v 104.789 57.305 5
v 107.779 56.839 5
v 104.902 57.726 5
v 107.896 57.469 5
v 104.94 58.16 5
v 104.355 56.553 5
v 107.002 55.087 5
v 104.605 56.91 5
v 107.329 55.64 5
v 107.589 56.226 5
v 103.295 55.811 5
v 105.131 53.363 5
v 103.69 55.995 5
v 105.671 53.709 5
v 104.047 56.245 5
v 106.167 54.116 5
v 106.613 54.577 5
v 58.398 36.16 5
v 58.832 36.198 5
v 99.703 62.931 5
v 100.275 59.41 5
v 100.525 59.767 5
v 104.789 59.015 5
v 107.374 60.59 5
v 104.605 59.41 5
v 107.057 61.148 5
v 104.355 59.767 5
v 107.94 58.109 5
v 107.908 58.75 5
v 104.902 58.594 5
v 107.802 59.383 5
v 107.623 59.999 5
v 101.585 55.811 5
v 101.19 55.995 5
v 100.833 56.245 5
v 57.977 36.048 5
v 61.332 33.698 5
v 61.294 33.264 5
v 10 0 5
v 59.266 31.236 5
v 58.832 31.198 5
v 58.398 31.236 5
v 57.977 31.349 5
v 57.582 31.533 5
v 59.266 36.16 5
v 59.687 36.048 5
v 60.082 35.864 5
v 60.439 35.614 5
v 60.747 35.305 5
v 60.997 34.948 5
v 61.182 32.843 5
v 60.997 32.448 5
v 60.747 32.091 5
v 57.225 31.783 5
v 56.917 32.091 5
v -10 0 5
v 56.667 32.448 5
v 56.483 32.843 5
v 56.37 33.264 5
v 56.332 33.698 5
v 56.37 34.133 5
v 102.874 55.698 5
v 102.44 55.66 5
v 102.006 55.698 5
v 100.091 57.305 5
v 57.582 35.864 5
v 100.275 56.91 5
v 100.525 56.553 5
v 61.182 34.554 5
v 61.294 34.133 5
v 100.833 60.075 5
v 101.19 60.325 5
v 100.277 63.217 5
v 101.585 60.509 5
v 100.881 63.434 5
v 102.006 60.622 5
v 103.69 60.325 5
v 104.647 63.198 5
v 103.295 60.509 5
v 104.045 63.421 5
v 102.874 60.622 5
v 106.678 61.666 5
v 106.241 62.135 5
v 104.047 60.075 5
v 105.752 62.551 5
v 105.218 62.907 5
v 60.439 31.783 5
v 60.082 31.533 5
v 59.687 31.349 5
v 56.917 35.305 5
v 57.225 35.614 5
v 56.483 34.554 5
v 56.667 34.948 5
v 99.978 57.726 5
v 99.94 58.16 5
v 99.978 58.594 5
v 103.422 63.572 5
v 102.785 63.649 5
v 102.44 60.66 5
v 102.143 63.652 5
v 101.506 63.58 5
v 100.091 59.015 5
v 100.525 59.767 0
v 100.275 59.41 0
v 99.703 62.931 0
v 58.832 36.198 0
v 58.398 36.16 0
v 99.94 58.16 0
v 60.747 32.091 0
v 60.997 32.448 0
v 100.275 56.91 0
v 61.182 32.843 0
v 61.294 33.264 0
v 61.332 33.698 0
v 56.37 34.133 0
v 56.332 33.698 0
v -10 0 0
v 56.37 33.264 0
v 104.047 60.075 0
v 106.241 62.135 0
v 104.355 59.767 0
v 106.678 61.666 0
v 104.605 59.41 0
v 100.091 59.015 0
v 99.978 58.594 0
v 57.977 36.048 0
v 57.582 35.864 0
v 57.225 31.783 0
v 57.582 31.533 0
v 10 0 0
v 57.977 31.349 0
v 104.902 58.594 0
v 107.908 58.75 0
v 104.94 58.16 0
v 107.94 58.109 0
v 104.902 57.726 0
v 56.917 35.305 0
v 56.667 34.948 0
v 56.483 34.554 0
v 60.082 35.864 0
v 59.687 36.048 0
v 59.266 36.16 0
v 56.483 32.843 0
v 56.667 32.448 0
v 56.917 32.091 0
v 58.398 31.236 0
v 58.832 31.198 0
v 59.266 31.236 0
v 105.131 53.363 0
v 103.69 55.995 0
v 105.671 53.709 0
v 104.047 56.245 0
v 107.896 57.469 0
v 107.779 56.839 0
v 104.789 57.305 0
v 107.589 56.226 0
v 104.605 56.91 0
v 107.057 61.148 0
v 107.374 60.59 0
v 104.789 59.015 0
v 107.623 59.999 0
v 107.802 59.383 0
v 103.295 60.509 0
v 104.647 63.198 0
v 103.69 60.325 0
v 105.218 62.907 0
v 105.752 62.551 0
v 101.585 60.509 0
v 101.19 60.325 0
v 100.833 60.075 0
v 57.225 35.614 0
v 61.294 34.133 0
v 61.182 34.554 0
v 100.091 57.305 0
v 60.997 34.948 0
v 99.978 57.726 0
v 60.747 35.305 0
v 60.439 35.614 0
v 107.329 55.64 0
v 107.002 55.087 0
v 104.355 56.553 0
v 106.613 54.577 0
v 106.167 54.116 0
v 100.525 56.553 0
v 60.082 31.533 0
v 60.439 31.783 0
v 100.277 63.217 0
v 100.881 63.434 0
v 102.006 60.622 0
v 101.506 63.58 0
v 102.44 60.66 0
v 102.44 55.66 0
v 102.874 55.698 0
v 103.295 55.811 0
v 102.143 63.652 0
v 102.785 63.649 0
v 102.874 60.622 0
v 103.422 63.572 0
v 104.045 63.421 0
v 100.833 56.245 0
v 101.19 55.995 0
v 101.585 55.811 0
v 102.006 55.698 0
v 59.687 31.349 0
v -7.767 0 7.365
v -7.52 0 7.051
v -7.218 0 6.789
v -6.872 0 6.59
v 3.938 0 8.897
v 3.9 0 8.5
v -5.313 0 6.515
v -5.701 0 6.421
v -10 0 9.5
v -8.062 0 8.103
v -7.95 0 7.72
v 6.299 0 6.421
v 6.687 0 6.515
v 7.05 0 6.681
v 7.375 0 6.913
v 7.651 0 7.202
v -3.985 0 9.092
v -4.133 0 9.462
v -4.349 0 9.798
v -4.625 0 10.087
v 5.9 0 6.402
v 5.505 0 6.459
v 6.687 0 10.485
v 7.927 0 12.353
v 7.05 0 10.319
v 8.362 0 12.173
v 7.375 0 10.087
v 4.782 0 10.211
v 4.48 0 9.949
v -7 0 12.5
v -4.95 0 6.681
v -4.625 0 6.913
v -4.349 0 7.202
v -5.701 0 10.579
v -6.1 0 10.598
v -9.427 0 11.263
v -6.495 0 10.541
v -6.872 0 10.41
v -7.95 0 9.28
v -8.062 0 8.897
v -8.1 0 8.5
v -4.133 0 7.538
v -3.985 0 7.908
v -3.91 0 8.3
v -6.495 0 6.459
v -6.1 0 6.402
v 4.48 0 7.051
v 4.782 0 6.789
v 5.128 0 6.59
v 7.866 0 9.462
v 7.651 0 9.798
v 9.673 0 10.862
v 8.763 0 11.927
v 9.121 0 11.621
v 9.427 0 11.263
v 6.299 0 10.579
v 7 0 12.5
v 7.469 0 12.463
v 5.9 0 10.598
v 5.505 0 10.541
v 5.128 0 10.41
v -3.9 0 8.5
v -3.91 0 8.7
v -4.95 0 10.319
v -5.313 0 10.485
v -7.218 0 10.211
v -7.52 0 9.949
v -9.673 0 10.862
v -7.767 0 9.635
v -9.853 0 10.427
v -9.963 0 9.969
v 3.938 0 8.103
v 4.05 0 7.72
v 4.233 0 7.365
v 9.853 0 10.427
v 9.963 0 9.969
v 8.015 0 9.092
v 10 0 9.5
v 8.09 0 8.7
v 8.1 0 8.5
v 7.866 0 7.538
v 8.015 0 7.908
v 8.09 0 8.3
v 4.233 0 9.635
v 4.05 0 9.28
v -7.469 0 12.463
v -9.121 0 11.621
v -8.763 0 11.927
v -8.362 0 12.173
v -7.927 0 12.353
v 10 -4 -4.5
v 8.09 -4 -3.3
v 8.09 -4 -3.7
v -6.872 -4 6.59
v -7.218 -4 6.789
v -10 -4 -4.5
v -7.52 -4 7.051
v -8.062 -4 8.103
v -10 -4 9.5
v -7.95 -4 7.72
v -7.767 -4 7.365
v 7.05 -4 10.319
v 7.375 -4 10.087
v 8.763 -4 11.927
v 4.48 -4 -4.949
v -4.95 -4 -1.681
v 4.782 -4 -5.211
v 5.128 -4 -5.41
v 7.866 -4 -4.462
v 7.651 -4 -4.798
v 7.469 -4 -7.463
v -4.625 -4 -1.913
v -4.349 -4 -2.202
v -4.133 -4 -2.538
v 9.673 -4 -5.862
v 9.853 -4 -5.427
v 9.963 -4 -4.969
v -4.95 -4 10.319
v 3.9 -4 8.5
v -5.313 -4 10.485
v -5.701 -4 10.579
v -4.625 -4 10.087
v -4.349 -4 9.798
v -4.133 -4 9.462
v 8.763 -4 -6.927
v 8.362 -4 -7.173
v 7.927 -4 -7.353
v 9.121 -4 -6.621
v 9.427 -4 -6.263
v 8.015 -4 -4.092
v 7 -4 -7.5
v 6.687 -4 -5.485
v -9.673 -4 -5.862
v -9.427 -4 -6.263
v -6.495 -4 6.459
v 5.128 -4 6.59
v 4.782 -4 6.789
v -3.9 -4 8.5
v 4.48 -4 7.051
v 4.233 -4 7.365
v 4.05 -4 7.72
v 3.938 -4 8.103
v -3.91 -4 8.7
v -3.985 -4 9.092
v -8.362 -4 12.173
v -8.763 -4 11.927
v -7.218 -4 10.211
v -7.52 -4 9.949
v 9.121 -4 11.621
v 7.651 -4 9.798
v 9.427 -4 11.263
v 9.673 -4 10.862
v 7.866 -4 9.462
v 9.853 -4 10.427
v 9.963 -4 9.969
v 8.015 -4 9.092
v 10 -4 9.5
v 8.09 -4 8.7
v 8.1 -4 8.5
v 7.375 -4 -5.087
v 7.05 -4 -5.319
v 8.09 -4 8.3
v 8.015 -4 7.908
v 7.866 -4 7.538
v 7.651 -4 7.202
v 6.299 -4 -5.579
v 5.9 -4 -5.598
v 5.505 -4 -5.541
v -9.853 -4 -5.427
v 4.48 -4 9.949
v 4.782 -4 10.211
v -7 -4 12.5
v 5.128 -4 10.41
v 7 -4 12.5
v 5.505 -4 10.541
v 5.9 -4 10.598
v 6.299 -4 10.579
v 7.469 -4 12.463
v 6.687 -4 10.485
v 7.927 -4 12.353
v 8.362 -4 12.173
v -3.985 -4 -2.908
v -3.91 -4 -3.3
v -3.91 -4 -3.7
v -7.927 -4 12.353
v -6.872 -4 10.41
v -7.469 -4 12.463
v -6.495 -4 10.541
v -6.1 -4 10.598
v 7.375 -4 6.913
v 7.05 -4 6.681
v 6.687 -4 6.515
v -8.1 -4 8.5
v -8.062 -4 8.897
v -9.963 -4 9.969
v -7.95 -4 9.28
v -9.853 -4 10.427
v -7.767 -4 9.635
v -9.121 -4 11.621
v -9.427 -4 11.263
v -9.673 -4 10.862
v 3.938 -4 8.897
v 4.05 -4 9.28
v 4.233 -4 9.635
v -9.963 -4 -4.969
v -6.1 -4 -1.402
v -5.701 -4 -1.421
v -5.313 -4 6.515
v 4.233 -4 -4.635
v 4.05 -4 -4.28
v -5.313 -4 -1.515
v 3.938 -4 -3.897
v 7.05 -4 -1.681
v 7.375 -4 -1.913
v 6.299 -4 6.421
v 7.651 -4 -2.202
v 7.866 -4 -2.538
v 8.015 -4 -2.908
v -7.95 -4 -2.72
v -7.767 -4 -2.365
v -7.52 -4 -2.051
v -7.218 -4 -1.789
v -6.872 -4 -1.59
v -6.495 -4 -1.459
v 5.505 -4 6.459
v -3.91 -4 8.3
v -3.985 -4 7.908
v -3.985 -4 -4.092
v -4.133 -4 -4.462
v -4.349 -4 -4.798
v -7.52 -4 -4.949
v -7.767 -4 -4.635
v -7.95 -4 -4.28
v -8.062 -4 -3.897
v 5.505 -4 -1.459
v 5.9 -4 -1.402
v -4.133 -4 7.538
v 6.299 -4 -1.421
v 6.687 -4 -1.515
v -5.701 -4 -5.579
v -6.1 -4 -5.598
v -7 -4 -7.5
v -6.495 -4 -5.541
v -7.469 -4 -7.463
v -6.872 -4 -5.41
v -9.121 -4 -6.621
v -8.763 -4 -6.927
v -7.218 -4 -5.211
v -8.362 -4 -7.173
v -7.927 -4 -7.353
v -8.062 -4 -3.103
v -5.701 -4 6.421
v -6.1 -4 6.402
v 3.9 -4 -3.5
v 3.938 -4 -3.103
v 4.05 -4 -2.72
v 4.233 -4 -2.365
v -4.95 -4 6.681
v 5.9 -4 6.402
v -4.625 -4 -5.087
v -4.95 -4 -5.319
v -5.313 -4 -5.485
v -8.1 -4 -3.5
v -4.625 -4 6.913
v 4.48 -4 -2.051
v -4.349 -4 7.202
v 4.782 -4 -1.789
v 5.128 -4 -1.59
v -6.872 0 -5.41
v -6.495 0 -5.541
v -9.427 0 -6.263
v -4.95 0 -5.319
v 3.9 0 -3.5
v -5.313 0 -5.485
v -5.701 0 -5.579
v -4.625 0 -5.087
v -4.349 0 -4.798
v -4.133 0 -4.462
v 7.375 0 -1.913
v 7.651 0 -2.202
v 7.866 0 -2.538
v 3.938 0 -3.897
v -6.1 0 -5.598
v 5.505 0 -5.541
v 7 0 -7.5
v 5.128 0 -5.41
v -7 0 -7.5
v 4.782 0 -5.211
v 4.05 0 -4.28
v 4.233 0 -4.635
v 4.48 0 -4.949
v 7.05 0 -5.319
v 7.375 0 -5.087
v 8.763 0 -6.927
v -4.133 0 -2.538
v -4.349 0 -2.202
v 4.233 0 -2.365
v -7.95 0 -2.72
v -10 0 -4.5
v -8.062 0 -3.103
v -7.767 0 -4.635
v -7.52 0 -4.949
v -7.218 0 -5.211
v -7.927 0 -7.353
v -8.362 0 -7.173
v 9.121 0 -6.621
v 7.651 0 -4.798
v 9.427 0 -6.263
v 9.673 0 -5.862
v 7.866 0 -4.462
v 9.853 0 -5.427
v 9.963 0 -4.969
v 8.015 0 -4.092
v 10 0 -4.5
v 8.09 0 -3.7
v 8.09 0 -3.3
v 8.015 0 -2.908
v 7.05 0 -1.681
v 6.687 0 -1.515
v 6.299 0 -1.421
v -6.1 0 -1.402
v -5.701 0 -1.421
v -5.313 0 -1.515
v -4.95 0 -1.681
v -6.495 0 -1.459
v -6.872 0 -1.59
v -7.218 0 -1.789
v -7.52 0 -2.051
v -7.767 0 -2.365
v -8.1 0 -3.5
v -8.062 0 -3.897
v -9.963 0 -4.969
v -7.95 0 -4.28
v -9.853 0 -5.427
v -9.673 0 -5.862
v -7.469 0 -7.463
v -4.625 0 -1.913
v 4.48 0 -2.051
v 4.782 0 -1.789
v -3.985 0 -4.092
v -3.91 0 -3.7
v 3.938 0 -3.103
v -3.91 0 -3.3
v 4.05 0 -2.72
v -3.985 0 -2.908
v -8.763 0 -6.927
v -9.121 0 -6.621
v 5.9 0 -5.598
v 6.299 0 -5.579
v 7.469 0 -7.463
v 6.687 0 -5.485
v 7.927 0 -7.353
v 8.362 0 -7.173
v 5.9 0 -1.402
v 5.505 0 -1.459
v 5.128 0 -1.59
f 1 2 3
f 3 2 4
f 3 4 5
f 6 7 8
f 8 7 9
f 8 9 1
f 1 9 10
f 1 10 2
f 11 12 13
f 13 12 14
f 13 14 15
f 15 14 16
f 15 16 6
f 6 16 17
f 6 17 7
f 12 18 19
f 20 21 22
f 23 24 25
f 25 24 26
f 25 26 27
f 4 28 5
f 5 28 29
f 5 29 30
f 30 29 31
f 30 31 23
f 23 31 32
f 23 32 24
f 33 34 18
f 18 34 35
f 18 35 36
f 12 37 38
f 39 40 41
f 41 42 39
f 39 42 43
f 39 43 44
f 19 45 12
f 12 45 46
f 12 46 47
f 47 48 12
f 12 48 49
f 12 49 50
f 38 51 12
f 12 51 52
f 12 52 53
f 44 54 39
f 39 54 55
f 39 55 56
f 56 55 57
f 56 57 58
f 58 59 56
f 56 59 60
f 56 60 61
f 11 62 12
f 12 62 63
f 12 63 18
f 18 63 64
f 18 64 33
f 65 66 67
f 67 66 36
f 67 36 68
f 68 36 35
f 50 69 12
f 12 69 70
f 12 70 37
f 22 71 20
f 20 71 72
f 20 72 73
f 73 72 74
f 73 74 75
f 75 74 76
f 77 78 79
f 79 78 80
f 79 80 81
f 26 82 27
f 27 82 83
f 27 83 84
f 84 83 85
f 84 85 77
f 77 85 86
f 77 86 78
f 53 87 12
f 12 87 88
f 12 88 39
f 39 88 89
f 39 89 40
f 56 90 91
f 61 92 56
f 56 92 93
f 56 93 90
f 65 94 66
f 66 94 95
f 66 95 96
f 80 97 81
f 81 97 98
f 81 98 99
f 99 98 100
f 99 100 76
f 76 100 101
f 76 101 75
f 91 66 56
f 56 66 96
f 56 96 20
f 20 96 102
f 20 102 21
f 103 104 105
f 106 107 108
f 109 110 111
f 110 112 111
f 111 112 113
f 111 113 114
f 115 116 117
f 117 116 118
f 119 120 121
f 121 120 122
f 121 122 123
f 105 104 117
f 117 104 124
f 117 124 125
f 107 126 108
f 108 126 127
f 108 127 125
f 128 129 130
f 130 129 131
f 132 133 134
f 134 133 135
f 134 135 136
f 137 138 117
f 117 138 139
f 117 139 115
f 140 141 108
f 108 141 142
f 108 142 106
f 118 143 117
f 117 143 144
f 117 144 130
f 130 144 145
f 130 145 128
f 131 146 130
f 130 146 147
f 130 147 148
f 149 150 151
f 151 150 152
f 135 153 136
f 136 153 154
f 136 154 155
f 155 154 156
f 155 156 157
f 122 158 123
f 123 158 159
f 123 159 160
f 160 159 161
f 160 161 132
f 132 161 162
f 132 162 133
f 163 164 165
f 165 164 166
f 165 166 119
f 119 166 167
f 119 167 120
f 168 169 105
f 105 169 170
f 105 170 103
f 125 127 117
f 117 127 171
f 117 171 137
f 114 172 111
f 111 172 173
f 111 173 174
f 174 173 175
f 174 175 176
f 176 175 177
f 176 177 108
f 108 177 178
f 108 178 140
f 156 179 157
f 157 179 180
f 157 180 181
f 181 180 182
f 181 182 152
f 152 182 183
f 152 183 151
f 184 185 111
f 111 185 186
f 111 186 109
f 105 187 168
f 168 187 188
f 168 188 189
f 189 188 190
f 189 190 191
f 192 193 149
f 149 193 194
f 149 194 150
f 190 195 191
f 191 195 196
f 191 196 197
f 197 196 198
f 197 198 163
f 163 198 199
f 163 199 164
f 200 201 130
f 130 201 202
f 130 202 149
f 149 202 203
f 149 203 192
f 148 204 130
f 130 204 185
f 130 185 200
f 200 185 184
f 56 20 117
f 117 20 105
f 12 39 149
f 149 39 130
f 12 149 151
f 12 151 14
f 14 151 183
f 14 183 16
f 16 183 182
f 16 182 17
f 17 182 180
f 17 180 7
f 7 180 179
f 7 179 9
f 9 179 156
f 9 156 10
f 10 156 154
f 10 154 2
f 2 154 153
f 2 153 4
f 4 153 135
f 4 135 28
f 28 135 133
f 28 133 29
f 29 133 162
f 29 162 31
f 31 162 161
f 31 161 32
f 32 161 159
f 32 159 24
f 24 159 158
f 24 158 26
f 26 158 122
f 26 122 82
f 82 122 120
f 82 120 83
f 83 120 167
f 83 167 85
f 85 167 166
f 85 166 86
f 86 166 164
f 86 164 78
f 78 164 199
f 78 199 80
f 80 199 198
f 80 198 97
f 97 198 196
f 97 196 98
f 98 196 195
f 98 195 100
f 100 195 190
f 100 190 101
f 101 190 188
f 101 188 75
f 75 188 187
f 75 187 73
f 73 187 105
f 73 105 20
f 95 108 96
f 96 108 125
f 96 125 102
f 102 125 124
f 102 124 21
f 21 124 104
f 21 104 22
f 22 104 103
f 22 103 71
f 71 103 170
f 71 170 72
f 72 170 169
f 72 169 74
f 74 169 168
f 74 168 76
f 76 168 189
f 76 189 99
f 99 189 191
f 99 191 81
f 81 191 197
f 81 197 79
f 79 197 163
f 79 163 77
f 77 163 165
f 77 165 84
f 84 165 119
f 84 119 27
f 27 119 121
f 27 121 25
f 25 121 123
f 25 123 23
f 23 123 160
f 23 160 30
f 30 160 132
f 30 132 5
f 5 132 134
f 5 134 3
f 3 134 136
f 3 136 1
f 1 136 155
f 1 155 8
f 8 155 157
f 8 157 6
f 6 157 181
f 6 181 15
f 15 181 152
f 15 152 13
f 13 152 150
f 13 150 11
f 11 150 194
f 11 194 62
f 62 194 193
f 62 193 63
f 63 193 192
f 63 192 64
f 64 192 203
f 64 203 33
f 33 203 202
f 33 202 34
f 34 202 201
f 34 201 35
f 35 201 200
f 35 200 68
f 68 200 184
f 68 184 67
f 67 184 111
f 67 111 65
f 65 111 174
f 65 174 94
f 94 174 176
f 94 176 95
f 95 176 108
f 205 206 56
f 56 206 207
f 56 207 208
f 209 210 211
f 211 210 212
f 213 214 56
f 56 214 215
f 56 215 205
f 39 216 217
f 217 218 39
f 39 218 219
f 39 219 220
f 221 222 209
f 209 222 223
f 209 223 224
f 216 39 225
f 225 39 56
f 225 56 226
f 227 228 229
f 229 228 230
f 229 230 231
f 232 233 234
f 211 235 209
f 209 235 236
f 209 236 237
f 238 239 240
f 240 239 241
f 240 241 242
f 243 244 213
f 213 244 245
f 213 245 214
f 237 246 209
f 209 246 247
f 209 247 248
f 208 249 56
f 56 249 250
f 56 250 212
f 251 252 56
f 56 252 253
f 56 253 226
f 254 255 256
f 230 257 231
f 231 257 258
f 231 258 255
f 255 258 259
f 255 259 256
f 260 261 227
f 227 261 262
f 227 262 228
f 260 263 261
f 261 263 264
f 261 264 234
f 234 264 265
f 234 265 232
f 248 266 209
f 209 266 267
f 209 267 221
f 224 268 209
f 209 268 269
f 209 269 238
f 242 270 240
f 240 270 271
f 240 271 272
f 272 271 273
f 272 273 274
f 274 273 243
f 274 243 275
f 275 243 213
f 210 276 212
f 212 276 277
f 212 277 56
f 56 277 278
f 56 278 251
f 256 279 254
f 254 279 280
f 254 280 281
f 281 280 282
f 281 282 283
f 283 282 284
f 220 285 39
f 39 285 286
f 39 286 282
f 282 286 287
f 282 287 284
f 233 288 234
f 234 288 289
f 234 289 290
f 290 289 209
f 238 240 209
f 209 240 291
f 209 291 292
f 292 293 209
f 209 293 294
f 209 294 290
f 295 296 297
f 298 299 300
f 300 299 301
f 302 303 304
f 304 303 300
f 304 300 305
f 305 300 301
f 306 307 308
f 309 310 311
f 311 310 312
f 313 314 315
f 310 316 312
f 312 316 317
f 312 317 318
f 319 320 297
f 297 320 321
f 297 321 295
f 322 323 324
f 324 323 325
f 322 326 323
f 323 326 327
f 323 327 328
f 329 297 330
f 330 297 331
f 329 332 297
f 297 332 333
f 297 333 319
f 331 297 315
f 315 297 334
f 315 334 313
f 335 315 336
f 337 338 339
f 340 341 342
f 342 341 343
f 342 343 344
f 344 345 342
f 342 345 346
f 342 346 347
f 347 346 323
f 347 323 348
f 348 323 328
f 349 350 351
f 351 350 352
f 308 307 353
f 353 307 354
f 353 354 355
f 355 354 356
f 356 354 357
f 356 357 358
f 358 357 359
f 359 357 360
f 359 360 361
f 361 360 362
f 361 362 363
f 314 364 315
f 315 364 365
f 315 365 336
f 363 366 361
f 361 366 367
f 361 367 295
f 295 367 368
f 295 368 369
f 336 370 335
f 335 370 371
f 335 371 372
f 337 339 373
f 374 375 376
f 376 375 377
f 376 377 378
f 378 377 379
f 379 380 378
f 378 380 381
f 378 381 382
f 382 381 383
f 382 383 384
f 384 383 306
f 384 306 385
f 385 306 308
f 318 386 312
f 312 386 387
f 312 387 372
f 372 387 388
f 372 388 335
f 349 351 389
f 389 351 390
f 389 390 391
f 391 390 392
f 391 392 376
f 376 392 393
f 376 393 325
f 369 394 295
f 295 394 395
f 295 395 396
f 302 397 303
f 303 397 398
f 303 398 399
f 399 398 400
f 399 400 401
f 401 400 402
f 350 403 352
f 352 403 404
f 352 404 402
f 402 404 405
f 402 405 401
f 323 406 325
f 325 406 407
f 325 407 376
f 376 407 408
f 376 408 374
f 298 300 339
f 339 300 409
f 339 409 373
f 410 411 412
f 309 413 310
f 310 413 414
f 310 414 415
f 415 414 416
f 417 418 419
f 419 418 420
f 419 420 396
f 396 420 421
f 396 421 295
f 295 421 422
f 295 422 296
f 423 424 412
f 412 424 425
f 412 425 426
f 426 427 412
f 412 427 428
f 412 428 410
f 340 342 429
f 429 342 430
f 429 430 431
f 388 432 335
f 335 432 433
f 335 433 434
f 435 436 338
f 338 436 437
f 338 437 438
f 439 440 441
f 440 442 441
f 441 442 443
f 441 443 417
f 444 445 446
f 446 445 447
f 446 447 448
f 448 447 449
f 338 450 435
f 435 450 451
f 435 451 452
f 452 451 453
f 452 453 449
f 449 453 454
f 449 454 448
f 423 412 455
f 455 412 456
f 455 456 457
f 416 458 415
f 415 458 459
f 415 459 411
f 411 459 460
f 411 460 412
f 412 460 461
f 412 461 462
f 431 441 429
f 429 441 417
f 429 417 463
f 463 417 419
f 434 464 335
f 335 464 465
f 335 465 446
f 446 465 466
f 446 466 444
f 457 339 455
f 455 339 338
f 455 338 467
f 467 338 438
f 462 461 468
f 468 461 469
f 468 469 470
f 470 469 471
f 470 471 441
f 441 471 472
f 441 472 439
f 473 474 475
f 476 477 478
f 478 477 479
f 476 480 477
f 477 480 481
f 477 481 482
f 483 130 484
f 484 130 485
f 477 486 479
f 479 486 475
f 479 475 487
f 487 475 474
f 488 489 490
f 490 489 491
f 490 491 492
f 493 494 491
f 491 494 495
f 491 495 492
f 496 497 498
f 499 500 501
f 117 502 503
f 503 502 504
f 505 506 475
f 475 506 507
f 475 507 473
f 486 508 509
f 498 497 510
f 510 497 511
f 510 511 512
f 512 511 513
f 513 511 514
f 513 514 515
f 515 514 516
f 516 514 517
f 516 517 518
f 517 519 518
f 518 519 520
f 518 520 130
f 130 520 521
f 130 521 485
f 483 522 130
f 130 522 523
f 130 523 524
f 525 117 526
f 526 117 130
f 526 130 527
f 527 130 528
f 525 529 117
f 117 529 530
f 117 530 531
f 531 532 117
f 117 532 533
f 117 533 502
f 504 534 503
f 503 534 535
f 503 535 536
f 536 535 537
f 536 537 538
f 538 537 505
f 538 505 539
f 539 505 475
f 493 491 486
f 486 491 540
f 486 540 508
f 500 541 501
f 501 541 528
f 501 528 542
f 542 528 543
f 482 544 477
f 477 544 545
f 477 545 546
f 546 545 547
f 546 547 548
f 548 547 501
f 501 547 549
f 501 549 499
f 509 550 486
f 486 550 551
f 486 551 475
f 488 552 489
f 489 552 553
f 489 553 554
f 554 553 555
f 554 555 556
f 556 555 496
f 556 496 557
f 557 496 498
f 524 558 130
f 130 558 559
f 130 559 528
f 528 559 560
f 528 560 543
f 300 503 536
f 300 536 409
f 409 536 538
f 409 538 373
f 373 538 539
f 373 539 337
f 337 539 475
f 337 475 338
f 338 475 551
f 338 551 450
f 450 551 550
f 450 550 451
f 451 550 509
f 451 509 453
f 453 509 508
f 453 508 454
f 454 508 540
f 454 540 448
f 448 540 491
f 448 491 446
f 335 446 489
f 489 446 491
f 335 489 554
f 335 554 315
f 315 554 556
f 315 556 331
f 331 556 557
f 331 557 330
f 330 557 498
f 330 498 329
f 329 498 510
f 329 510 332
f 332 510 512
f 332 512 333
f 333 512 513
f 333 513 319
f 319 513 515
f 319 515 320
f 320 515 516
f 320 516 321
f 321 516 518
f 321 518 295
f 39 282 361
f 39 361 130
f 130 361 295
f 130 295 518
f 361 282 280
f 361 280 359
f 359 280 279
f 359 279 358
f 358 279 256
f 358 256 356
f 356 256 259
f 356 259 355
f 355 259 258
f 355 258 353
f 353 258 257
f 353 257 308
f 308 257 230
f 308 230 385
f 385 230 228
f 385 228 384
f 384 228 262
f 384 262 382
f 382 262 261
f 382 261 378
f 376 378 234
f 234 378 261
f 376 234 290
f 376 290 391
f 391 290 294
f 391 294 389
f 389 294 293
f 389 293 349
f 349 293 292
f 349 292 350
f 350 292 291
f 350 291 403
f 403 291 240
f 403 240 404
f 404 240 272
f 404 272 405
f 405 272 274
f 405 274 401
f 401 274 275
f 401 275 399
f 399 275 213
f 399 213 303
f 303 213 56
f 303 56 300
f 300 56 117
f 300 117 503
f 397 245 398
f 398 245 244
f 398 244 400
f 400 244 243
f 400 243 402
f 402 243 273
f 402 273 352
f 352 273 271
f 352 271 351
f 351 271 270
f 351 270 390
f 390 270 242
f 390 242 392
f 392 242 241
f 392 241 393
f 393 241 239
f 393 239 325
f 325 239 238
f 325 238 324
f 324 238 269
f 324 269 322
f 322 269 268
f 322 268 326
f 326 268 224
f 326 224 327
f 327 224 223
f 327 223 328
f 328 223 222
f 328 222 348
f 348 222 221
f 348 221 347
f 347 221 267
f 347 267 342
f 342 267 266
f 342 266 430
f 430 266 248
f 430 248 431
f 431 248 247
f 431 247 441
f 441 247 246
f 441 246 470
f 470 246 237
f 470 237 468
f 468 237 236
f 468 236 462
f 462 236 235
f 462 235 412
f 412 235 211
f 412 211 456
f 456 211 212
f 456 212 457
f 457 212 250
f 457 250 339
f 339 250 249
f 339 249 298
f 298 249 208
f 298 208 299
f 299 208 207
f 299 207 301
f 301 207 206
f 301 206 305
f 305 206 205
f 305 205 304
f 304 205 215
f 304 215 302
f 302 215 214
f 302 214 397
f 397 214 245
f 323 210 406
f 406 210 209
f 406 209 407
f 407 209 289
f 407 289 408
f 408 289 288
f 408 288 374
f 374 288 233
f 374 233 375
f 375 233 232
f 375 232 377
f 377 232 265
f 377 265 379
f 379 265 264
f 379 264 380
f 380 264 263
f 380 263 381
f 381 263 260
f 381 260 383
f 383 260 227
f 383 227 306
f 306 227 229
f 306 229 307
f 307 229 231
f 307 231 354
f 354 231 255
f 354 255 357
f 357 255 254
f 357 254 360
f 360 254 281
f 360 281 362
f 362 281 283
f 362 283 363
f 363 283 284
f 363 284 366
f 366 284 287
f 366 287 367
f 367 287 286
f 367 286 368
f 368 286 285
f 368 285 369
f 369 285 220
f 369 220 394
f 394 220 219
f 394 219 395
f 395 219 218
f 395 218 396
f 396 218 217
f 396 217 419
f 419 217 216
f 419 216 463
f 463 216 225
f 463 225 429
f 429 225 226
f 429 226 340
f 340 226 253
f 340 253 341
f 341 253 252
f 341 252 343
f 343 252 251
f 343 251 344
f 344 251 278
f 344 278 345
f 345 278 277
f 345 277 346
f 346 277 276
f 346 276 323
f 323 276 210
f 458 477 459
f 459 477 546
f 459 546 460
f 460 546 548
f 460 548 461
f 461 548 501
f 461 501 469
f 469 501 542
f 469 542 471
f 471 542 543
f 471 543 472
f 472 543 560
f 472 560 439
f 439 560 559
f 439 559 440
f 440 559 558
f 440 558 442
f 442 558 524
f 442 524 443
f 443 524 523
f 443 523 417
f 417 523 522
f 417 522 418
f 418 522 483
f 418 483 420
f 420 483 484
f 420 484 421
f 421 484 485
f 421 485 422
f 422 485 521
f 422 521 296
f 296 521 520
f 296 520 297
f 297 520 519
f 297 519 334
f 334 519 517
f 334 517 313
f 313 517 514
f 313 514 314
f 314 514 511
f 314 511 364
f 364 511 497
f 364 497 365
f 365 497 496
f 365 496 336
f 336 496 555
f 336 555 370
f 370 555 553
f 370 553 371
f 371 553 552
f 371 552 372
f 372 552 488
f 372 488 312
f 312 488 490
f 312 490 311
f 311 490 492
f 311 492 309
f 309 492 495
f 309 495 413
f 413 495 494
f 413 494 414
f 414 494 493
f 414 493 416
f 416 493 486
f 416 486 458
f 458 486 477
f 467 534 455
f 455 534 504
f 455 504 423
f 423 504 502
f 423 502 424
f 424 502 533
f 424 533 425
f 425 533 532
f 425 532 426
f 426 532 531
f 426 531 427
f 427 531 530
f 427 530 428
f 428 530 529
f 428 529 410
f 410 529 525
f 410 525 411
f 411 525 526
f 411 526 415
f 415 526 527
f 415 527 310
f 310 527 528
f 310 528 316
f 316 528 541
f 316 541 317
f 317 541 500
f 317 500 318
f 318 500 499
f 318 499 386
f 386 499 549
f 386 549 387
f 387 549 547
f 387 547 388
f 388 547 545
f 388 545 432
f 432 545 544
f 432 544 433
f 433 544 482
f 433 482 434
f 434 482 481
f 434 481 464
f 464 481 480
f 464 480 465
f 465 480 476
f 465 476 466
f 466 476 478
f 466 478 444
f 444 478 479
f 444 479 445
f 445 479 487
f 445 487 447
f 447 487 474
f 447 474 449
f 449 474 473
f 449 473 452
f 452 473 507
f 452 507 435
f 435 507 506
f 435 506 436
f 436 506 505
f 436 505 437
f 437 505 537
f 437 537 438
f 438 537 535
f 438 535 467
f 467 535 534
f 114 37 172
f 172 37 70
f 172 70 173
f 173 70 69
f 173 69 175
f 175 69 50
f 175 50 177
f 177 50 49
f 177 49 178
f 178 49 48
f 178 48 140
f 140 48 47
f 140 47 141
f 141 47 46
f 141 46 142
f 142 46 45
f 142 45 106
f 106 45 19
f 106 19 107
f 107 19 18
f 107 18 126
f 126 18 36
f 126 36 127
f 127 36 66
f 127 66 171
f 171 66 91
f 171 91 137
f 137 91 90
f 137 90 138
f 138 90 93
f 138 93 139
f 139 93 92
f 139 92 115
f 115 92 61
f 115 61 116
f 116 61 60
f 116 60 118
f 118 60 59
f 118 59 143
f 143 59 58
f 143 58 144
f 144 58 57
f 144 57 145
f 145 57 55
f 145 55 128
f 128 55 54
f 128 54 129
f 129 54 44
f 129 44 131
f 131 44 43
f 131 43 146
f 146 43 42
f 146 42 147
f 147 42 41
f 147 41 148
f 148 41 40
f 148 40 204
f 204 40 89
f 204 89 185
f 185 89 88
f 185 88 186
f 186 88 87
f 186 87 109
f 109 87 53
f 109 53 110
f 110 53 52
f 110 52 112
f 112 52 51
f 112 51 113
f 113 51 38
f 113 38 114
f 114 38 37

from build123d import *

# Parameters (mm, degrees)
SKETCH1_R           = 2.5
BOSS_EXTRUDE1_DEPTH = 5
SKETCH4_R           = 2.1
BOSS_EXTRUDE3_DEPTH = 4
SKETCH5_R           = 2.5
CUT_EXTRUDE1_DEPTH  = 10


with BuildPart() as part:
    # Sketch1 → Boss-Extrude1 (new body)
    with BuildSketch(Plane.XY):
        with BuildLine():
            Line((10, 0), (-10, 0))
            Line((-10, 0), (99.703266961, 62.930774809))
            ThreePointArc((99.703266961, 62.930774809), (107.223867063, 60.873782586), (105.130769502, 53.363151088))
            Line((105.130769502, 53.363151088), (10, 0))
        make_face()
        with Locations((102.44, 58.16)):
            Circle(SKETCH1_R, mode=Mode.SUBTRACT)
    extrude(amount=BOSS_EXTRUDE1_DEPTH)

    # Sketch4 → Boss-Extrude3 (add)
    with BuildSketch(Plane.XZ):
        with BuildLine():
            Line((7, -7.5), (-7, -7.5))
            ThreePointArc((-7, -7.5), (-9.121320344, -6.621320344), (-10, -4.5))
            Line((-10, -4.5), (-10, 9.5))
            ThreePointArc((-10, 9.5), (-9.121320344, 11.621320344), (-7, 12.5))
            Line((-7, 12.5), (7, 12.5))
            ThreePointArc((7, 12.5), (9.121320344, 11.621320344), (10, 9.5))
            Line((10, 9.5), (10, -4.5))
            ThreePointArc((10, -4.5), (9.121320344, -6.621320344), (7, -7.5))
        make_face()
        with Locations((-6, 8.5)):
            Circle(SKETCH4_R, mode=Mode.SUBTRACT)
        with Locations((5.99988022, 8.5)):
            Circle(SKETCH4_R, mode=Mode.SUBTRACT)
        with Locations(Location((5.99988022, -3.5, 0), (0, 0, 180))):
            Circle(SKETCH4_R, mode=Mode.SUBTRACT)
        with Locations(Location((-6, -3.5, 0), (0, 0, 180))):
            Circle(SKETCH4_R, mode=Mode.SUBTRACT)
    extrude(amount=BOSS_EXTRUDE3_DEPTH)

    # Sketch5 → Cut-Extrude1 (cut)
    with BuildSketch(Plane.XY.offset(5)):
        with Locations((58.832282615, 33.698459075)):
            Circle(SKETCH5_R)
    extrude(amount=-CUT_EXTRUDE1_DEPTH, mode=Mode.SUBTRACT)


solid = part.part
